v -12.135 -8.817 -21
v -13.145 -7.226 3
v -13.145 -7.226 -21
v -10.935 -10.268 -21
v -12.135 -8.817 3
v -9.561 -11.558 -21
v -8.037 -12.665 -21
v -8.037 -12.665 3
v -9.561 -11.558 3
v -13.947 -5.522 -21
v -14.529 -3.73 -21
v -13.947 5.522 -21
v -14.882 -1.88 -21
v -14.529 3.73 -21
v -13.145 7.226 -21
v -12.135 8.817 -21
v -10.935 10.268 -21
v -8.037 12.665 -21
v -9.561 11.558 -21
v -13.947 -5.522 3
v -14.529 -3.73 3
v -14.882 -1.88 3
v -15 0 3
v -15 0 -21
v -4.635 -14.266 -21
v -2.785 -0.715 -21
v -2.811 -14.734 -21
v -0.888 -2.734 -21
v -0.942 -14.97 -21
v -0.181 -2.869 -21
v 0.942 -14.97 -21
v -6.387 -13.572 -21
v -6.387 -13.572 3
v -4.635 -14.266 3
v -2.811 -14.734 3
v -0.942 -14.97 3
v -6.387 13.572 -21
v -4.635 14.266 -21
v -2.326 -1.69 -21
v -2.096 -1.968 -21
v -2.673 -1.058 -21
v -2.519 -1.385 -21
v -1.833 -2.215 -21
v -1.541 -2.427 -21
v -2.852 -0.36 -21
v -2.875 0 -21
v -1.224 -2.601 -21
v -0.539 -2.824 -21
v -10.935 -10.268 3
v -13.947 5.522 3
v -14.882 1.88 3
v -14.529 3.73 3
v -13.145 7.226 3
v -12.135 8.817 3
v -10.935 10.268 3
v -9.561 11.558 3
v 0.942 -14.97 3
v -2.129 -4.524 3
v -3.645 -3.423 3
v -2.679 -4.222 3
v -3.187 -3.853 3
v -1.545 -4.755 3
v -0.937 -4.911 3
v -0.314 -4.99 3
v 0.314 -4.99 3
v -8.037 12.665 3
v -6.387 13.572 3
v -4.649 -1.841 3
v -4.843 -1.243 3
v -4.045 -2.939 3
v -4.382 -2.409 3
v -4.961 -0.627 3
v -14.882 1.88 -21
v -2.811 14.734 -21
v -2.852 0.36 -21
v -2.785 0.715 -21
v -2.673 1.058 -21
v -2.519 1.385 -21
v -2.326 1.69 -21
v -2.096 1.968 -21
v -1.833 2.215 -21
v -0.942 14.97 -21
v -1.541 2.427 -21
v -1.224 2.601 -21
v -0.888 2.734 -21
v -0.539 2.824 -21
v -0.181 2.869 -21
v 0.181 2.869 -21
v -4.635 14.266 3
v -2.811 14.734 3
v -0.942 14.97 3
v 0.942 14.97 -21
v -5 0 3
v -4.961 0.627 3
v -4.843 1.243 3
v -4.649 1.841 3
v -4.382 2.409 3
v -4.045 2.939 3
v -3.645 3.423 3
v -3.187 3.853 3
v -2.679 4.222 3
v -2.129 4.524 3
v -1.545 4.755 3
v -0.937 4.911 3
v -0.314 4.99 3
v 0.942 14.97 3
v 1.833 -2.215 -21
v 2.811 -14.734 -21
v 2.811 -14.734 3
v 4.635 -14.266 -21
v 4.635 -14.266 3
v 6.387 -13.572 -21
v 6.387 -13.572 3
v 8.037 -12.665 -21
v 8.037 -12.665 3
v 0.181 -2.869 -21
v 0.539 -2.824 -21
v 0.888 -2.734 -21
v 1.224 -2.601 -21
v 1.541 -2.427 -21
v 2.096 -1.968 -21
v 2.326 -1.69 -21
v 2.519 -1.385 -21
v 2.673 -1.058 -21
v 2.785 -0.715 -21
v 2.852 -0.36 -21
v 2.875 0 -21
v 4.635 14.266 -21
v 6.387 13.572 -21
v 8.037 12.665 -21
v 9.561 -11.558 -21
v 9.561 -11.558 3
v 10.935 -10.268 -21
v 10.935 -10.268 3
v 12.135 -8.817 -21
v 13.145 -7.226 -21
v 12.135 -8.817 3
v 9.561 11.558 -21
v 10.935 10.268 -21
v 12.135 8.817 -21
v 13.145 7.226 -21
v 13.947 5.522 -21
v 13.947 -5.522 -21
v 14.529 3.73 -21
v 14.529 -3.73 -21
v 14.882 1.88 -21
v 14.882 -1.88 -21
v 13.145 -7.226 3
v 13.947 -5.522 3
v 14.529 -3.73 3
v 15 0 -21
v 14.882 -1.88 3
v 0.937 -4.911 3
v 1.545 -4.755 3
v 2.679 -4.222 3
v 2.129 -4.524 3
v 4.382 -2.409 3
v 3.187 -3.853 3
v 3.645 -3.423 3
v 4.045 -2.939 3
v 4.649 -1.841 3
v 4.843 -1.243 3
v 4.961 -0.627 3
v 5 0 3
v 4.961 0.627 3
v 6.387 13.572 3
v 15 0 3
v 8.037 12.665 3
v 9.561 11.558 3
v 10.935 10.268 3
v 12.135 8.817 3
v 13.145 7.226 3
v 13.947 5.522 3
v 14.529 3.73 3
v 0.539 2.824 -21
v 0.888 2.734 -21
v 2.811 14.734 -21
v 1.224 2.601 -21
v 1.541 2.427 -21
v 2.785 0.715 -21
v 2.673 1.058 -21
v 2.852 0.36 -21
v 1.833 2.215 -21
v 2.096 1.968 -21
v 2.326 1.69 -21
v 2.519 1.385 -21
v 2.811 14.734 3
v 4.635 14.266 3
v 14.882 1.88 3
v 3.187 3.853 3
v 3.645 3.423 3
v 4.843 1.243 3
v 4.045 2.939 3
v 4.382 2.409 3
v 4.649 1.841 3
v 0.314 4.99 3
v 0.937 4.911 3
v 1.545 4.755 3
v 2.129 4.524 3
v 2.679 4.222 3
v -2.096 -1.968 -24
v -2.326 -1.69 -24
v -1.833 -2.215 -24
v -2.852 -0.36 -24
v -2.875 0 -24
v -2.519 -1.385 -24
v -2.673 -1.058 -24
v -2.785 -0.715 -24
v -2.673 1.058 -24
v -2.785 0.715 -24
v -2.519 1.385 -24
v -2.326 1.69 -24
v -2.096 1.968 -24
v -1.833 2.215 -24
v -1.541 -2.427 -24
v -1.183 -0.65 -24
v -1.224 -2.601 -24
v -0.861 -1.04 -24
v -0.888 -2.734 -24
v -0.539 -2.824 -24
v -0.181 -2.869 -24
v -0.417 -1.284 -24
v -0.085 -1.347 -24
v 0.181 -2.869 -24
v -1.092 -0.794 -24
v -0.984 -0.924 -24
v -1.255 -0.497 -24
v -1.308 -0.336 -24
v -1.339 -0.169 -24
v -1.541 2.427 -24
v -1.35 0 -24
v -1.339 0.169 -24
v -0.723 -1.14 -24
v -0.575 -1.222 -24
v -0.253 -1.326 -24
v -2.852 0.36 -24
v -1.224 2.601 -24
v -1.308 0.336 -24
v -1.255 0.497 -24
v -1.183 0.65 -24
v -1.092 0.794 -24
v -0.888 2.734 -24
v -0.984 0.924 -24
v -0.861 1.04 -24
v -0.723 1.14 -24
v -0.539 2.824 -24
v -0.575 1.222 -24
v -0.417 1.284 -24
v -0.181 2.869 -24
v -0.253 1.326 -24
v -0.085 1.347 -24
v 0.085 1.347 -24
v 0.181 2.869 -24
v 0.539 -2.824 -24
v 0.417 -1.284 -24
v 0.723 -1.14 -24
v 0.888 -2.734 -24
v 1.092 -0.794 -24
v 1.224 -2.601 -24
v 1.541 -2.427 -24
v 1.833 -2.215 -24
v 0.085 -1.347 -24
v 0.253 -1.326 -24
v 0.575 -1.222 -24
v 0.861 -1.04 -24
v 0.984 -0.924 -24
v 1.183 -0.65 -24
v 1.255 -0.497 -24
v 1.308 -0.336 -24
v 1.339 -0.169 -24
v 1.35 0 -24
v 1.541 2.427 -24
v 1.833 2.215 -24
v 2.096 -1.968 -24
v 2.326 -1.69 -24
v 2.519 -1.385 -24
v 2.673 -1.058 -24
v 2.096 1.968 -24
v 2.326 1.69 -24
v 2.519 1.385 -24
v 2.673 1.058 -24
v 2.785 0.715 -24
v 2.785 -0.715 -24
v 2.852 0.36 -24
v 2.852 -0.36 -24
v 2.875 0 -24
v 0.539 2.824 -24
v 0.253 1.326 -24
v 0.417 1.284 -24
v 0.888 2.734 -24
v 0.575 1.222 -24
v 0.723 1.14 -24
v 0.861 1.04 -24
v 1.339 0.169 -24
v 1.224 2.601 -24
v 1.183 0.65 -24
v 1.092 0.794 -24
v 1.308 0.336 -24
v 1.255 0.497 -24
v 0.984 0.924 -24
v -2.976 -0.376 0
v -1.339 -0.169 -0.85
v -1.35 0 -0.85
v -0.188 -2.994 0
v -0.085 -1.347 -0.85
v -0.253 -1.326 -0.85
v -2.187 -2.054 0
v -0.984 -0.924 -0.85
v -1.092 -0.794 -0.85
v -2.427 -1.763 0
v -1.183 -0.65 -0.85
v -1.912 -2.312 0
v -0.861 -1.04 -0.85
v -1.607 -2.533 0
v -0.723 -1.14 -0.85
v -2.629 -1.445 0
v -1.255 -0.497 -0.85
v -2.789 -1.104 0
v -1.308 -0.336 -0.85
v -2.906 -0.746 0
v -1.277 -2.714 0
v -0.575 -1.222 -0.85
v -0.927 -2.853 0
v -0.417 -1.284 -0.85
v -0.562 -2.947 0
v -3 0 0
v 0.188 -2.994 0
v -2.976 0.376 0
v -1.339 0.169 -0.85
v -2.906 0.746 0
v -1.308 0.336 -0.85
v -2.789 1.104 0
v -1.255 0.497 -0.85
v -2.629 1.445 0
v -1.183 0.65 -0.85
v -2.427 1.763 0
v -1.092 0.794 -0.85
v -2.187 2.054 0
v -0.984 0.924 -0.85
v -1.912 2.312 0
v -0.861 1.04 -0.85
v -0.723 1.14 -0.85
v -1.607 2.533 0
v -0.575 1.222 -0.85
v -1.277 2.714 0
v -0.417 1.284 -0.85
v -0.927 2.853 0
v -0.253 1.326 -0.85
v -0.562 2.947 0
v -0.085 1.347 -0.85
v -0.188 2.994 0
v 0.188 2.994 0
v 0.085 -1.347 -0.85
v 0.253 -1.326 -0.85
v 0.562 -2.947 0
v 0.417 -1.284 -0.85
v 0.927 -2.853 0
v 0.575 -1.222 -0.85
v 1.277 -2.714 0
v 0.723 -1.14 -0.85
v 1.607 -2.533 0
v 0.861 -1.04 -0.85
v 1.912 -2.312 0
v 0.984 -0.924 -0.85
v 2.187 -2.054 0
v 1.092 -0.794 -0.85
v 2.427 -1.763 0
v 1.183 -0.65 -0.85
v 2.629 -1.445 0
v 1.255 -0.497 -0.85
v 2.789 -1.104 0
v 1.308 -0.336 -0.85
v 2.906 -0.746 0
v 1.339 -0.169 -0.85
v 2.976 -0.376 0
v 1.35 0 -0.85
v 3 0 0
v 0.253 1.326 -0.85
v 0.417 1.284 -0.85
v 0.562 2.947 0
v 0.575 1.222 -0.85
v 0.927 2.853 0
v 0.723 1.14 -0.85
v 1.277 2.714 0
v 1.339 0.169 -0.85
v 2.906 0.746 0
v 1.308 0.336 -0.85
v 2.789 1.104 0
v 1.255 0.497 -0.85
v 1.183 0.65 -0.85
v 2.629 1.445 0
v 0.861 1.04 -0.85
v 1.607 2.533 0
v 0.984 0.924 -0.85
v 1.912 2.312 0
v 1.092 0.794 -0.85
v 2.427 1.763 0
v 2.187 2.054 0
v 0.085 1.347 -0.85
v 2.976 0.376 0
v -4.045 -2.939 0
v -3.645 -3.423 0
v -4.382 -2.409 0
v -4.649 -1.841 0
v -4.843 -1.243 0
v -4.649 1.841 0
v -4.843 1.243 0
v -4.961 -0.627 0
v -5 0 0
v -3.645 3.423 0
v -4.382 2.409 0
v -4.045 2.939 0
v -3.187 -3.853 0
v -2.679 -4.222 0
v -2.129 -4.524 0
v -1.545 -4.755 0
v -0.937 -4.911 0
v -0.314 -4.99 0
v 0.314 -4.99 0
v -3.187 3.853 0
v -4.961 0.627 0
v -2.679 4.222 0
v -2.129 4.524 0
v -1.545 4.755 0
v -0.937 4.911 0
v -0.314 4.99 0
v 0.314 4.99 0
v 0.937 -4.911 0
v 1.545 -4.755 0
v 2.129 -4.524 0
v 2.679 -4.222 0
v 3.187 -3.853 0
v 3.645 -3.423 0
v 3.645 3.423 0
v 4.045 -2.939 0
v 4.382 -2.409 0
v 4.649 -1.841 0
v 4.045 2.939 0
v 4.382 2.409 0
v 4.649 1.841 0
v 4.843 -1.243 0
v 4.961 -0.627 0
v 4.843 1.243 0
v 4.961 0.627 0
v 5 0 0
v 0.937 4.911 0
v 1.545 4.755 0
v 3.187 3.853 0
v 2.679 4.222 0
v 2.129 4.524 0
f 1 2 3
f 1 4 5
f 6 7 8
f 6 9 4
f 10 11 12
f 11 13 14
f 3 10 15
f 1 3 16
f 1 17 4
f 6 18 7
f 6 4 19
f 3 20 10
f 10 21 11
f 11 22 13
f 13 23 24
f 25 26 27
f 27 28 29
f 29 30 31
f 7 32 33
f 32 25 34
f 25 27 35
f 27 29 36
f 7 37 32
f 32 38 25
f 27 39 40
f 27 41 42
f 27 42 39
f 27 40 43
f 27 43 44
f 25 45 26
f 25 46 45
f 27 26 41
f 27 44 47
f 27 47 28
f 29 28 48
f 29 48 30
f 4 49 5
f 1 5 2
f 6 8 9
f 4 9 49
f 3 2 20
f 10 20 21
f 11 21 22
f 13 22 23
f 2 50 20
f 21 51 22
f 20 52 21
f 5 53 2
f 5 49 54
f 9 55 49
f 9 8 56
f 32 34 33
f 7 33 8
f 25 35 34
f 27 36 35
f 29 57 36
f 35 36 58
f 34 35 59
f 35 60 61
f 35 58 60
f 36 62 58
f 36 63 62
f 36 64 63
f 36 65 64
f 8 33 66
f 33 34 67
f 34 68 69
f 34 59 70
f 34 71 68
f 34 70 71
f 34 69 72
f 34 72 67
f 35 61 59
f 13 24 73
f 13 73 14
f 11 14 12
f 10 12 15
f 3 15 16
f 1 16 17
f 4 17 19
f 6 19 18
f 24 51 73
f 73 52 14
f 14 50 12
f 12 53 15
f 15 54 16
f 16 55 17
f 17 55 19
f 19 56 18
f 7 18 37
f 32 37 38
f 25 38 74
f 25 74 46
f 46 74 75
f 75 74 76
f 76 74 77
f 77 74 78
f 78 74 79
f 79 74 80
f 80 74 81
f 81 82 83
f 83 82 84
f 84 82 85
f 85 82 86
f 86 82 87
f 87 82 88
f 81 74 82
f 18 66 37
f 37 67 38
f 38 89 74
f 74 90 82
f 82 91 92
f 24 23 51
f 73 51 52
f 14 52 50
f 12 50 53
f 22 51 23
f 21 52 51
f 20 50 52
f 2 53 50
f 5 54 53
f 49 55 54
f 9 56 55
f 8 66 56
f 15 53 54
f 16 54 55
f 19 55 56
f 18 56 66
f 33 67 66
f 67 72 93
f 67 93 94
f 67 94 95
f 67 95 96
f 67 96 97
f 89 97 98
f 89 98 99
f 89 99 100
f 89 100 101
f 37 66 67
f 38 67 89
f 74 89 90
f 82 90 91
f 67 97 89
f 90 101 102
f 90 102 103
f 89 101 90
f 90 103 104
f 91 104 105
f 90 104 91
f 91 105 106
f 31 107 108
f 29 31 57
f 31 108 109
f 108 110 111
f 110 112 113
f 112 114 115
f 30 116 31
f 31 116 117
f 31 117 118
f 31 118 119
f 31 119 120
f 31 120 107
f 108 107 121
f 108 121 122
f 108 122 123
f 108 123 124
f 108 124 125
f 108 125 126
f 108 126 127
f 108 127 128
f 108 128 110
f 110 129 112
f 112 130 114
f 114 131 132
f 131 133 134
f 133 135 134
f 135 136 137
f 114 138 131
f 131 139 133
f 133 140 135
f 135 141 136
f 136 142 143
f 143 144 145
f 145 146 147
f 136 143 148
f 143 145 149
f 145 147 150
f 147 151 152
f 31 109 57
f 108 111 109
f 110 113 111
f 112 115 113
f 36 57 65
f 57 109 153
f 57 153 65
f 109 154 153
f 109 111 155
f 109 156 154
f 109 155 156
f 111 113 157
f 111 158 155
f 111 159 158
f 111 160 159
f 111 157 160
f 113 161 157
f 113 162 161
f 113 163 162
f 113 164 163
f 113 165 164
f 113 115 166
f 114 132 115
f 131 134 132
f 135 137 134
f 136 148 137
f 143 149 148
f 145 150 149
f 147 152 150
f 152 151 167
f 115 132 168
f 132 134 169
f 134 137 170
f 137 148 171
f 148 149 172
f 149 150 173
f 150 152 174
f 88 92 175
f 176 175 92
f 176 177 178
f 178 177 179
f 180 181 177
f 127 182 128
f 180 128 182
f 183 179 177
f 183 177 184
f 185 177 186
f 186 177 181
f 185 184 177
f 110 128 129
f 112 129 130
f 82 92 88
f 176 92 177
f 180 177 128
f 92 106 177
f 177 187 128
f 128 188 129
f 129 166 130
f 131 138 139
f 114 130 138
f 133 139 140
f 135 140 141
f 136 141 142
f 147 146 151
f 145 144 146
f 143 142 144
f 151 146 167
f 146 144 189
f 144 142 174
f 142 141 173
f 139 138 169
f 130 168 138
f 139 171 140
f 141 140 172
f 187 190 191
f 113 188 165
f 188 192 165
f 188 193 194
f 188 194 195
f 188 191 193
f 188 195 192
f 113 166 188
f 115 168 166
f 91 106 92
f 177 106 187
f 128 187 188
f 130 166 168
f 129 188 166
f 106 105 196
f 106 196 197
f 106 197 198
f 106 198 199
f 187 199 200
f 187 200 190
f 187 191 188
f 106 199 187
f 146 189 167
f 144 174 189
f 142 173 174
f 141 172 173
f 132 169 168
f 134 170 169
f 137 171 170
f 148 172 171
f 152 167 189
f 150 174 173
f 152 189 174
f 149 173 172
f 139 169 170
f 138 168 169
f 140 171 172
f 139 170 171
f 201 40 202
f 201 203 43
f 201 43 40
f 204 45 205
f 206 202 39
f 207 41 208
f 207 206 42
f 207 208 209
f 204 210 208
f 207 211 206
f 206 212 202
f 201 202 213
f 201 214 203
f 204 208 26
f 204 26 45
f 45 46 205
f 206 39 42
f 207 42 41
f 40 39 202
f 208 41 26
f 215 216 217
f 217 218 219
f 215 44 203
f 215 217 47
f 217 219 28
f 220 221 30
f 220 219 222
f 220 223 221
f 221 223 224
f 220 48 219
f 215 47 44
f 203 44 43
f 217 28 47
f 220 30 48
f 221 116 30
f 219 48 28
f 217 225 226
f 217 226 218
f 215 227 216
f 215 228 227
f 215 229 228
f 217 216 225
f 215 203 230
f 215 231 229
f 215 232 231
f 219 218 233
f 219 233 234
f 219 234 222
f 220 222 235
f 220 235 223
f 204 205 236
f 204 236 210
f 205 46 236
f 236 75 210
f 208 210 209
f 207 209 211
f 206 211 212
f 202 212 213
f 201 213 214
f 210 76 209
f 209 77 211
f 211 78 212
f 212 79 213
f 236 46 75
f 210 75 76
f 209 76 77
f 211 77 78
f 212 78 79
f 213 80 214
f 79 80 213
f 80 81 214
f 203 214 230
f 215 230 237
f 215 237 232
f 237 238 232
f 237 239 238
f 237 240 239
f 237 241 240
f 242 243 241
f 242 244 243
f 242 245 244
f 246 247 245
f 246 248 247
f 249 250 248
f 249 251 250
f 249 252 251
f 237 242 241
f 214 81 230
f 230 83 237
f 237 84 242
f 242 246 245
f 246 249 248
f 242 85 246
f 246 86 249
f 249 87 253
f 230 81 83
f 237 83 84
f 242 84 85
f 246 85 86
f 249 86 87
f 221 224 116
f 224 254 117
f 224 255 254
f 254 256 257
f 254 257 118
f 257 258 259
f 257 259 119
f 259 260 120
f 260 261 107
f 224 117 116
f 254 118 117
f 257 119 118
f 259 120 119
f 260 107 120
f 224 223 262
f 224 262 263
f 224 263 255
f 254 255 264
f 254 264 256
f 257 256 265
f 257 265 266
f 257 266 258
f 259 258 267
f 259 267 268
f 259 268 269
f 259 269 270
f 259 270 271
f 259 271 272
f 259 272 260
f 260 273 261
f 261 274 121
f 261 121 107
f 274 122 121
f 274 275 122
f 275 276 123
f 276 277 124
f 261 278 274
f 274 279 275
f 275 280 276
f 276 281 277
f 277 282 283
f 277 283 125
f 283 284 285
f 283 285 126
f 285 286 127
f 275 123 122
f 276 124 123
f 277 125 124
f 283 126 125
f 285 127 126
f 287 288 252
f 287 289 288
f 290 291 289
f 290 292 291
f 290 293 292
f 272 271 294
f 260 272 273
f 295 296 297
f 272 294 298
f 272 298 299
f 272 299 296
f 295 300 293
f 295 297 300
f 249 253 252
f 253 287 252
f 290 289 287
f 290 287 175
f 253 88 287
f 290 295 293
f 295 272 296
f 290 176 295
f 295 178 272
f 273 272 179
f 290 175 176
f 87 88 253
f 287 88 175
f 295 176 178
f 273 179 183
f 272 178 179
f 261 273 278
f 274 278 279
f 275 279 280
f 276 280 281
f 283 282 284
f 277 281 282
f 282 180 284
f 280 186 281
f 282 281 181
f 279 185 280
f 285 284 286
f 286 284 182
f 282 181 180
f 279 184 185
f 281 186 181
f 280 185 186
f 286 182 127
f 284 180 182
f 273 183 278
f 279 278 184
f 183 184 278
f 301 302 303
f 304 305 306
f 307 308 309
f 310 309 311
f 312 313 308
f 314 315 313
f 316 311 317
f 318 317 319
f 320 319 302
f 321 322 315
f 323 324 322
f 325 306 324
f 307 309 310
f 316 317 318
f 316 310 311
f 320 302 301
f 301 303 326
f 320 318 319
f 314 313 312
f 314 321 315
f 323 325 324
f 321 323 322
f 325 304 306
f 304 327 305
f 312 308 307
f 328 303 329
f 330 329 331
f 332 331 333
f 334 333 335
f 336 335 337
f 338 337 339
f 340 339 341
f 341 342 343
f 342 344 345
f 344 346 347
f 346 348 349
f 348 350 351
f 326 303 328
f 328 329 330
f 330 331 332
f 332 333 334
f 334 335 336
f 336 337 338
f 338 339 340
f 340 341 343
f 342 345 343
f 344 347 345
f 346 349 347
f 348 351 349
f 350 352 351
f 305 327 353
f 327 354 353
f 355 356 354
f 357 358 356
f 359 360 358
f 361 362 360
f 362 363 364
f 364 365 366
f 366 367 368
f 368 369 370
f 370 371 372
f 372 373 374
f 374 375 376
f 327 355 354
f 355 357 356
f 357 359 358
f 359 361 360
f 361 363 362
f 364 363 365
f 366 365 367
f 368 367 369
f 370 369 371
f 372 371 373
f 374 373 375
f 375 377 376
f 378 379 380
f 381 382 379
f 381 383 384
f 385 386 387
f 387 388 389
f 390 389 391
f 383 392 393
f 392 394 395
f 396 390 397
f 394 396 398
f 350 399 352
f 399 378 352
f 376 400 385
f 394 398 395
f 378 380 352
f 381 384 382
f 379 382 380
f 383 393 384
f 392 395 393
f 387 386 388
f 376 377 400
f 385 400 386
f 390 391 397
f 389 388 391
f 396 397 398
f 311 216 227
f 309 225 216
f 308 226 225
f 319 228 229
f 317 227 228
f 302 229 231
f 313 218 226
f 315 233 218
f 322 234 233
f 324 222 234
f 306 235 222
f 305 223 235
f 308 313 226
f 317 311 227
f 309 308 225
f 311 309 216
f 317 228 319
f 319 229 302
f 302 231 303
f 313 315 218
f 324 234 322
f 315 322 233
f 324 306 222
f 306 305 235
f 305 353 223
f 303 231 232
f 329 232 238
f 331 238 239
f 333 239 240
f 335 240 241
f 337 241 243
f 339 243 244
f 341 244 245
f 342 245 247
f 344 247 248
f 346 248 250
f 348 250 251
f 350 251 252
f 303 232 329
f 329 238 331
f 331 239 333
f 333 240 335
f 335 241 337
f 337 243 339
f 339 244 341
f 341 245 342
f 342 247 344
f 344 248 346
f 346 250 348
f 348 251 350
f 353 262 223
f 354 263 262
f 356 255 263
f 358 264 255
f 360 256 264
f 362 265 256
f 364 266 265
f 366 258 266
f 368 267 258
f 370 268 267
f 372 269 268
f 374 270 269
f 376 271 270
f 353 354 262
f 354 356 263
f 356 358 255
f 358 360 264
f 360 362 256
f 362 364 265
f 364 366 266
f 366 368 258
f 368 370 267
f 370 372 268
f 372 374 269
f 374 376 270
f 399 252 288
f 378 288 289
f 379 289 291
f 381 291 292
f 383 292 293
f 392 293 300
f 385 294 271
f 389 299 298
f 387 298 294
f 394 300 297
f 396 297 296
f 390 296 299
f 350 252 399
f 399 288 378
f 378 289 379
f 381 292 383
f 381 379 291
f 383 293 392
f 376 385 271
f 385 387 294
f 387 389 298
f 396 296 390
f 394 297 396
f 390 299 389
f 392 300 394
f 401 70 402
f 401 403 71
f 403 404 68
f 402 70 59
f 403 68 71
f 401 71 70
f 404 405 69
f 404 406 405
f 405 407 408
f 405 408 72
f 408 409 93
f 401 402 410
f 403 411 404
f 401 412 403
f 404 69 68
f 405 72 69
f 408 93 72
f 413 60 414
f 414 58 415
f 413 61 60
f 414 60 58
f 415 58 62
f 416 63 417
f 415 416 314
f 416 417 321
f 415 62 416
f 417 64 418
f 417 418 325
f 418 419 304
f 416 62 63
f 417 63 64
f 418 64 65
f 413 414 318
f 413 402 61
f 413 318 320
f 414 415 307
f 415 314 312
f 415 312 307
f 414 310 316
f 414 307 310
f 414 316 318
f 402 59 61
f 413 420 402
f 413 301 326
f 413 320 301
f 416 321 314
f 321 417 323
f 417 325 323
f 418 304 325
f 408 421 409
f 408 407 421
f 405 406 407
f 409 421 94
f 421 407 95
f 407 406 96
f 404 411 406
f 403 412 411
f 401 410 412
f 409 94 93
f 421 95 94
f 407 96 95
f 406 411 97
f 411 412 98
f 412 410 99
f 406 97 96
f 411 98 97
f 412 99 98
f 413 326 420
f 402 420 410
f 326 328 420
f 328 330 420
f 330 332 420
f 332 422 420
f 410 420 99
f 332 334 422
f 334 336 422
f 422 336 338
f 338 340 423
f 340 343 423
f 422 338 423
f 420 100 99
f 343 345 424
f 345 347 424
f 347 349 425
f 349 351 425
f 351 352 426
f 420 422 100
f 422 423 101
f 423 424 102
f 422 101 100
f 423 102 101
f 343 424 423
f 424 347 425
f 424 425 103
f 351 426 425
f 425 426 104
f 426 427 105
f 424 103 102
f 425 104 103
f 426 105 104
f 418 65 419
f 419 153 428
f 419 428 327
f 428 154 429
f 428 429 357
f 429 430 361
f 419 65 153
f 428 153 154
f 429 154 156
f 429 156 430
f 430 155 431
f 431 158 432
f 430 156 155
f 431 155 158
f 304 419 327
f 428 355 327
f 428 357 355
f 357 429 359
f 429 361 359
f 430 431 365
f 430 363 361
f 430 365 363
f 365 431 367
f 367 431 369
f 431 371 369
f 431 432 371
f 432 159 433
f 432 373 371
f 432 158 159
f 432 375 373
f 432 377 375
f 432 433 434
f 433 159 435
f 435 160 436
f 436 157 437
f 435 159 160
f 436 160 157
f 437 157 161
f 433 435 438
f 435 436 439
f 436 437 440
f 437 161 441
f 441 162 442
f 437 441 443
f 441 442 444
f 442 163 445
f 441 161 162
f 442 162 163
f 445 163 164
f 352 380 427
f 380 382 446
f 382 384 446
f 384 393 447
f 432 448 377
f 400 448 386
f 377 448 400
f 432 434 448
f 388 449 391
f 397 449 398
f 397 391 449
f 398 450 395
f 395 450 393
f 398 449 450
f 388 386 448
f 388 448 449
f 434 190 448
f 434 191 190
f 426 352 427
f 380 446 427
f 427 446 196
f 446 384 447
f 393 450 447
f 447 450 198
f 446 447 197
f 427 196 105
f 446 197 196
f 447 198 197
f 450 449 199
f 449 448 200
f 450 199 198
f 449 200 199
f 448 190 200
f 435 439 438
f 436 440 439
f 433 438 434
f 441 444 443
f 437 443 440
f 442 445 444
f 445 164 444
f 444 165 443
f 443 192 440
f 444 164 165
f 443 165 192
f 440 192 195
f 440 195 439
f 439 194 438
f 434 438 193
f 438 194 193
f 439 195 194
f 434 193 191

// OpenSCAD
$fn = 50;

difference() {
	union() {
		translate(v = [0, 0, -21.0]) {
			cylinder(h = 24, r = 15.0);
		}
		#translate(v = [0, 0, -24.0]) {
			cylinder(h = 24, r = 2.875);
		}
	}
	union() {
		translate(v = [0, 0, 0]) {
			rotate(a = [0, 0, 0]) {
				difference() {
					union() {
						translate(v = [0, 0, -24.0]) {
							cylinder(h = 24, r = 1.0);
						}
						translate(v = [0, 0, -0.85]) {
							cylinder(h = 0.85, r1 = 1.35, r2 = 3.0);
						}
						translate(v = [0, 0, -24.0]) {
							cylinder(h = 24, r = 1.35);
						}
						translate(v = [0, 0, -24.0]) {
							cylinder(h = 24, r = 1.0);
						}
					}
					union();
				}
			}
		}
		#cylinder(h = 3, r = 5.0);
	}
}
